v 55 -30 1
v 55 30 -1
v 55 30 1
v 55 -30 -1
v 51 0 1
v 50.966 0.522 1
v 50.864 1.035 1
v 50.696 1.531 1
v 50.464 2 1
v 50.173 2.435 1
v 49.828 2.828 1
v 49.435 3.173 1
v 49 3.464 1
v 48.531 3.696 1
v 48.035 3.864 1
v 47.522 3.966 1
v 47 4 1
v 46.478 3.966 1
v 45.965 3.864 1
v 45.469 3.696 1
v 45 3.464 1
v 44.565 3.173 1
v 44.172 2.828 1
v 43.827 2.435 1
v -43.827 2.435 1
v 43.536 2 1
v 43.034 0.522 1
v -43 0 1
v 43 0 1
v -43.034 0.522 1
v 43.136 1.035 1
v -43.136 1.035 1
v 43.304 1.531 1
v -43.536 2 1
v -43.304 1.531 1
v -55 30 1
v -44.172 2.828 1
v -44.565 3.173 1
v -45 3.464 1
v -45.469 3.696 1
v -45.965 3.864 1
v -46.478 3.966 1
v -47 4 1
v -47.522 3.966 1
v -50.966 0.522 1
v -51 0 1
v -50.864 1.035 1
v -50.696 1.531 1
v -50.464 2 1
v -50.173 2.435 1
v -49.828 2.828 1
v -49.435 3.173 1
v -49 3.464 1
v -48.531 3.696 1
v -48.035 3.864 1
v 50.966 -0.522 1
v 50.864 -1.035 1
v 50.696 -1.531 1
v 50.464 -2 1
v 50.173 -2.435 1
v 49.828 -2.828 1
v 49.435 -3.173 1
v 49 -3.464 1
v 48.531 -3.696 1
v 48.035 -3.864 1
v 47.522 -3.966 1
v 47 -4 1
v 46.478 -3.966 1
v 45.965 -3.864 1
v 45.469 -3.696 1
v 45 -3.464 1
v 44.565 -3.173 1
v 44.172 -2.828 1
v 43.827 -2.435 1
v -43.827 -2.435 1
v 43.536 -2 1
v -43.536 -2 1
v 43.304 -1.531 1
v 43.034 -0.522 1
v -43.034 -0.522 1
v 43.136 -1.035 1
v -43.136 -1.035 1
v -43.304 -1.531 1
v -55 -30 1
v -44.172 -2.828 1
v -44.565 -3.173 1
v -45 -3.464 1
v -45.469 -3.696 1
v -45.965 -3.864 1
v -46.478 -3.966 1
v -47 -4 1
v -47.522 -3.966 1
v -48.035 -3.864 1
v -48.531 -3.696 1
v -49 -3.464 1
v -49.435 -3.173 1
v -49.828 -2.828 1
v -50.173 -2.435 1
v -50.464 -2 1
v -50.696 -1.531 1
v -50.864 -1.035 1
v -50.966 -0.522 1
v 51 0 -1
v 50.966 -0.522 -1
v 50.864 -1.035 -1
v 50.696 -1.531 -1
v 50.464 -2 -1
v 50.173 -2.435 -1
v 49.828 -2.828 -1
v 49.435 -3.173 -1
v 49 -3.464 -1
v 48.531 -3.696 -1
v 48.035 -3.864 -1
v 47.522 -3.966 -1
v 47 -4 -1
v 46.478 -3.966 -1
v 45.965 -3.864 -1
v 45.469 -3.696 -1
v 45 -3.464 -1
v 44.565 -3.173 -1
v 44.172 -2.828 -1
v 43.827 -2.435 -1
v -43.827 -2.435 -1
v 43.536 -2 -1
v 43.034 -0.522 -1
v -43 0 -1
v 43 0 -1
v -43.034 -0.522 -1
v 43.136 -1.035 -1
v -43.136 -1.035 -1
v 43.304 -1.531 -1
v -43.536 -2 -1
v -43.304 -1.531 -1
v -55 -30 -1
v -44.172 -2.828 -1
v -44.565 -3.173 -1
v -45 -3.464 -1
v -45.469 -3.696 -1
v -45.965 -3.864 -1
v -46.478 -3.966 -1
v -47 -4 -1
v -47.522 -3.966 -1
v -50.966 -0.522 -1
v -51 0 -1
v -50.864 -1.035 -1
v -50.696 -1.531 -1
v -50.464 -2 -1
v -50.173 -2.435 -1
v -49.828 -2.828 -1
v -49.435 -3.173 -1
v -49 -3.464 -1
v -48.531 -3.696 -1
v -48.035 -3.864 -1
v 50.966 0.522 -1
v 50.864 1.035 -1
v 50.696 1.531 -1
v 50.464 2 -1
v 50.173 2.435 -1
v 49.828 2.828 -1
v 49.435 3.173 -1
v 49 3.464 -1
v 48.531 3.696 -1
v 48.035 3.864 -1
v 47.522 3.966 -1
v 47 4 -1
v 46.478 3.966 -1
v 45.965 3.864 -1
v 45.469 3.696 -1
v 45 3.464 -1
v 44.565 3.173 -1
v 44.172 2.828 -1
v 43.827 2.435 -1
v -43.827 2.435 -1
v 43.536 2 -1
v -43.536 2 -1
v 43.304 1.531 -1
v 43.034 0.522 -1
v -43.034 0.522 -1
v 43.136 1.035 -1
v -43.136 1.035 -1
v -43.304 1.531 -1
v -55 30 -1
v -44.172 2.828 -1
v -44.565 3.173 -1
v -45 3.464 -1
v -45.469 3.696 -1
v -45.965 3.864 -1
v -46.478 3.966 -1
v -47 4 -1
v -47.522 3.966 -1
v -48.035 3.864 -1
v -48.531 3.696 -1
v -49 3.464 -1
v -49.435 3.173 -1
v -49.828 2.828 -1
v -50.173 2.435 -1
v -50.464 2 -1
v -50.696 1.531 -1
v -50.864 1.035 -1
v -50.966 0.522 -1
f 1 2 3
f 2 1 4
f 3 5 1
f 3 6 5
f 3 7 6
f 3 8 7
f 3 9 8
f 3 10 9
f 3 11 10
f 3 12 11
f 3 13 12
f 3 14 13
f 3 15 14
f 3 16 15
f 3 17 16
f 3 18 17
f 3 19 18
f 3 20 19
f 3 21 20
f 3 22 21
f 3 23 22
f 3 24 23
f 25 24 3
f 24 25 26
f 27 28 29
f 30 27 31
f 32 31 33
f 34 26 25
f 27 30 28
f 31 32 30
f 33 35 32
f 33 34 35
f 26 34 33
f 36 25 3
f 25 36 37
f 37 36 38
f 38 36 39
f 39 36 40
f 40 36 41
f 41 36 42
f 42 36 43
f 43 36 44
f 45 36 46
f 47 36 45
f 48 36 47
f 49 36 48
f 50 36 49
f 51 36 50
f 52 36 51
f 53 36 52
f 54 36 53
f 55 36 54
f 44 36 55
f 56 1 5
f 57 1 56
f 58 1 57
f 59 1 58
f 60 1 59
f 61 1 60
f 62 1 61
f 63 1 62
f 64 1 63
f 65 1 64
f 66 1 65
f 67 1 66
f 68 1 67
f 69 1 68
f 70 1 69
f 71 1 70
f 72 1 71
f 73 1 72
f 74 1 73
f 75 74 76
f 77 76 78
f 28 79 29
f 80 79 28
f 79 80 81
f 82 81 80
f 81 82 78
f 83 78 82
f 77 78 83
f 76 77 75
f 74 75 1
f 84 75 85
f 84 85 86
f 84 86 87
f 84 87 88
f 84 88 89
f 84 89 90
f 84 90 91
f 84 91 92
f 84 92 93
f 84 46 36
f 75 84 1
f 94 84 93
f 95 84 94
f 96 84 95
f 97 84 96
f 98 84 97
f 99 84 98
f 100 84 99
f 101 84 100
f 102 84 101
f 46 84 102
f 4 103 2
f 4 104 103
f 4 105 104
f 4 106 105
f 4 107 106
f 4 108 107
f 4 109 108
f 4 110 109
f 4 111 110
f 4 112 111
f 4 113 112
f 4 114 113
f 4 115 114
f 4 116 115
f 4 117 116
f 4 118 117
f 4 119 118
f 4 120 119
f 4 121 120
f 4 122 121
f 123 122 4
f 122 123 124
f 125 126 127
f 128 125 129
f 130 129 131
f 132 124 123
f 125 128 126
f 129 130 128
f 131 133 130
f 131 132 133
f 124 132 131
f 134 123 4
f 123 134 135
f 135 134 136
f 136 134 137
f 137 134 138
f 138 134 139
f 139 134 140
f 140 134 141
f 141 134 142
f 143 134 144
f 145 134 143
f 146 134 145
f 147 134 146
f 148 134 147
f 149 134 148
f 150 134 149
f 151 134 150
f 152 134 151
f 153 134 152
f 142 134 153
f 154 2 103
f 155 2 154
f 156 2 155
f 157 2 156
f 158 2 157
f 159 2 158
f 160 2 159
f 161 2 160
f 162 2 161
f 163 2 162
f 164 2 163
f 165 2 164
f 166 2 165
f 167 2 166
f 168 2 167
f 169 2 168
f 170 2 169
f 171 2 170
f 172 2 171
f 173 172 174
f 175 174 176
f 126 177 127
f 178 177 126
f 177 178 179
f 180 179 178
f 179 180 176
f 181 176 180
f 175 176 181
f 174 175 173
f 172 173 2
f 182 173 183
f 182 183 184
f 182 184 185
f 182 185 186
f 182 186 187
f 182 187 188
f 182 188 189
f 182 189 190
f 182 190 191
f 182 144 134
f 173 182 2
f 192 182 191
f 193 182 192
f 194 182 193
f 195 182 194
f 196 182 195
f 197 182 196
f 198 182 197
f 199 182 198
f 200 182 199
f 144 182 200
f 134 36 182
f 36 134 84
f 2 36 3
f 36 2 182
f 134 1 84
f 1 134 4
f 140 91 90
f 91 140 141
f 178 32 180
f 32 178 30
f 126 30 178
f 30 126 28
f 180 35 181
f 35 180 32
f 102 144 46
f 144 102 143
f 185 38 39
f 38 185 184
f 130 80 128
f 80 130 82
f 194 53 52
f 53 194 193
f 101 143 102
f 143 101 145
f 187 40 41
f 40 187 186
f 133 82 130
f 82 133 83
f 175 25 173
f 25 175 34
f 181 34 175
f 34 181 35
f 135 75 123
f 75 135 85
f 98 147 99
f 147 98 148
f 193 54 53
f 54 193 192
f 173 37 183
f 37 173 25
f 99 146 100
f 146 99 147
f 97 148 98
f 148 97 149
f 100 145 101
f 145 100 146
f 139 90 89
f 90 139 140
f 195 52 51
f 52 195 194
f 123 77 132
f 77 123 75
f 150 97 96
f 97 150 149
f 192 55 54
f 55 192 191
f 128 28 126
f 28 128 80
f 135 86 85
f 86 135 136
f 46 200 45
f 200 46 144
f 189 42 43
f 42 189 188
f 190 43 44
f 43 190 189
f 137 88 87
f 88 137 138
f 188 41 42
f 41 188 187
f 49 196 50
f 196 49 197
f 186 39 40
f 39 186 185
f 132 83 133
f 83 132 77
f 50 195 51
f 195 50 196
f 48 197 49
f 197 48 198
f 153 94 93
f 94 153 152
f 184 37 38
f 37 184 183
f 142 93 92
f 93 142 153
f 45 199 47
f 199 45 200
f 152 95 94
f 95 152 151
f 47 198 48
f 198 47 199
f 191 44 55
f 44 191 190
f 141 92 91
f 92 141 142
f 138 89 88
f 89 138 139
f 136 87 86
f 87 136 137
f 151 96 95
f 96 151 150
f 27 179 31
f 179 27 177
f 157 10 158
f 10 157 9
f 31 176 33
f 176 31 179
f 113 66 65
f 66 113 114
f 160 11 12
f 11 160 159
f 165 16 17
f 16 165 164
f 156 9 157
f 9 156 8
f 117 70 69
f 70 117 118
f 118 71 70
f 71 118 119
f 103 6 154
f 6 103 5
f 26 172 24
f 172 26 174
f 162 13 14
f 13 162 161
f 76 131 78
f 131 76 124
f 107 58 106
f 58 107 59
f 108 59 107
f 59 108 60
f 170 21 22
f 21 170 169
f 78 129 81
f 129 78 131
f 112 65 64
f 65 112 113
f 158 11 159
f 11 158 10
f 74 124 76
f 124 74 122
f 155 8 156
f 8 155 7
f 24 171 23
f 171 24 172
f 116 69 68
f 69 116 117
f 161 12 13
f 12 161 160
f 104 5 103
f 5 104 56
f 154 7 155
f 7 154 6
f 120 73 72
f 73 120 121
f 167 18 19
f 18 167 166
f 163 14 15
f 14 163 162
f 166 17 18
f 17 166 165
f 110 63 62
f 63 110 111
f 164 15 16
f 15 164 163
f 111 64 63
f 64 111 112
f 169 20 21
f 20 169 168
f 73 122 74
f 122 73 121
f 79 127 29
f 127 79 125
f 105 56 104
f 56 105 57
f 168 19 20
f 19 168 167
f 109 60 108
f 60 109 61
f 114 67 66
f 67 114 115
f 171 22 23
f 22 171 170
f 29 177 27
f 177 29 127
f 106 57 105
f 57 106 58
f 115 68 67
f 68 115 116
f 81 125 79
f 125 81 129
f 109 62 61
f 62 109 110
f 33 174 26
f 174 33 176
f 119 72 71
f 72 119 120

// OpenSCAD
// ========================================
// a 110 x 60 x 2 mm plate with two 8 mm holes
// NeuroCAD canonical IR; dimensions are millimetres
// ========================================
$fn = 48;

difference() {
  cube(size=[110, 60, 2], center=true);
  translate([-47, 0, 0]) {
    cylinder(r=4, h=4, center=true);
  }
  translate([47, 0, 0]) {
    cylinder(r=4, h=4, center=true);
  }
}
